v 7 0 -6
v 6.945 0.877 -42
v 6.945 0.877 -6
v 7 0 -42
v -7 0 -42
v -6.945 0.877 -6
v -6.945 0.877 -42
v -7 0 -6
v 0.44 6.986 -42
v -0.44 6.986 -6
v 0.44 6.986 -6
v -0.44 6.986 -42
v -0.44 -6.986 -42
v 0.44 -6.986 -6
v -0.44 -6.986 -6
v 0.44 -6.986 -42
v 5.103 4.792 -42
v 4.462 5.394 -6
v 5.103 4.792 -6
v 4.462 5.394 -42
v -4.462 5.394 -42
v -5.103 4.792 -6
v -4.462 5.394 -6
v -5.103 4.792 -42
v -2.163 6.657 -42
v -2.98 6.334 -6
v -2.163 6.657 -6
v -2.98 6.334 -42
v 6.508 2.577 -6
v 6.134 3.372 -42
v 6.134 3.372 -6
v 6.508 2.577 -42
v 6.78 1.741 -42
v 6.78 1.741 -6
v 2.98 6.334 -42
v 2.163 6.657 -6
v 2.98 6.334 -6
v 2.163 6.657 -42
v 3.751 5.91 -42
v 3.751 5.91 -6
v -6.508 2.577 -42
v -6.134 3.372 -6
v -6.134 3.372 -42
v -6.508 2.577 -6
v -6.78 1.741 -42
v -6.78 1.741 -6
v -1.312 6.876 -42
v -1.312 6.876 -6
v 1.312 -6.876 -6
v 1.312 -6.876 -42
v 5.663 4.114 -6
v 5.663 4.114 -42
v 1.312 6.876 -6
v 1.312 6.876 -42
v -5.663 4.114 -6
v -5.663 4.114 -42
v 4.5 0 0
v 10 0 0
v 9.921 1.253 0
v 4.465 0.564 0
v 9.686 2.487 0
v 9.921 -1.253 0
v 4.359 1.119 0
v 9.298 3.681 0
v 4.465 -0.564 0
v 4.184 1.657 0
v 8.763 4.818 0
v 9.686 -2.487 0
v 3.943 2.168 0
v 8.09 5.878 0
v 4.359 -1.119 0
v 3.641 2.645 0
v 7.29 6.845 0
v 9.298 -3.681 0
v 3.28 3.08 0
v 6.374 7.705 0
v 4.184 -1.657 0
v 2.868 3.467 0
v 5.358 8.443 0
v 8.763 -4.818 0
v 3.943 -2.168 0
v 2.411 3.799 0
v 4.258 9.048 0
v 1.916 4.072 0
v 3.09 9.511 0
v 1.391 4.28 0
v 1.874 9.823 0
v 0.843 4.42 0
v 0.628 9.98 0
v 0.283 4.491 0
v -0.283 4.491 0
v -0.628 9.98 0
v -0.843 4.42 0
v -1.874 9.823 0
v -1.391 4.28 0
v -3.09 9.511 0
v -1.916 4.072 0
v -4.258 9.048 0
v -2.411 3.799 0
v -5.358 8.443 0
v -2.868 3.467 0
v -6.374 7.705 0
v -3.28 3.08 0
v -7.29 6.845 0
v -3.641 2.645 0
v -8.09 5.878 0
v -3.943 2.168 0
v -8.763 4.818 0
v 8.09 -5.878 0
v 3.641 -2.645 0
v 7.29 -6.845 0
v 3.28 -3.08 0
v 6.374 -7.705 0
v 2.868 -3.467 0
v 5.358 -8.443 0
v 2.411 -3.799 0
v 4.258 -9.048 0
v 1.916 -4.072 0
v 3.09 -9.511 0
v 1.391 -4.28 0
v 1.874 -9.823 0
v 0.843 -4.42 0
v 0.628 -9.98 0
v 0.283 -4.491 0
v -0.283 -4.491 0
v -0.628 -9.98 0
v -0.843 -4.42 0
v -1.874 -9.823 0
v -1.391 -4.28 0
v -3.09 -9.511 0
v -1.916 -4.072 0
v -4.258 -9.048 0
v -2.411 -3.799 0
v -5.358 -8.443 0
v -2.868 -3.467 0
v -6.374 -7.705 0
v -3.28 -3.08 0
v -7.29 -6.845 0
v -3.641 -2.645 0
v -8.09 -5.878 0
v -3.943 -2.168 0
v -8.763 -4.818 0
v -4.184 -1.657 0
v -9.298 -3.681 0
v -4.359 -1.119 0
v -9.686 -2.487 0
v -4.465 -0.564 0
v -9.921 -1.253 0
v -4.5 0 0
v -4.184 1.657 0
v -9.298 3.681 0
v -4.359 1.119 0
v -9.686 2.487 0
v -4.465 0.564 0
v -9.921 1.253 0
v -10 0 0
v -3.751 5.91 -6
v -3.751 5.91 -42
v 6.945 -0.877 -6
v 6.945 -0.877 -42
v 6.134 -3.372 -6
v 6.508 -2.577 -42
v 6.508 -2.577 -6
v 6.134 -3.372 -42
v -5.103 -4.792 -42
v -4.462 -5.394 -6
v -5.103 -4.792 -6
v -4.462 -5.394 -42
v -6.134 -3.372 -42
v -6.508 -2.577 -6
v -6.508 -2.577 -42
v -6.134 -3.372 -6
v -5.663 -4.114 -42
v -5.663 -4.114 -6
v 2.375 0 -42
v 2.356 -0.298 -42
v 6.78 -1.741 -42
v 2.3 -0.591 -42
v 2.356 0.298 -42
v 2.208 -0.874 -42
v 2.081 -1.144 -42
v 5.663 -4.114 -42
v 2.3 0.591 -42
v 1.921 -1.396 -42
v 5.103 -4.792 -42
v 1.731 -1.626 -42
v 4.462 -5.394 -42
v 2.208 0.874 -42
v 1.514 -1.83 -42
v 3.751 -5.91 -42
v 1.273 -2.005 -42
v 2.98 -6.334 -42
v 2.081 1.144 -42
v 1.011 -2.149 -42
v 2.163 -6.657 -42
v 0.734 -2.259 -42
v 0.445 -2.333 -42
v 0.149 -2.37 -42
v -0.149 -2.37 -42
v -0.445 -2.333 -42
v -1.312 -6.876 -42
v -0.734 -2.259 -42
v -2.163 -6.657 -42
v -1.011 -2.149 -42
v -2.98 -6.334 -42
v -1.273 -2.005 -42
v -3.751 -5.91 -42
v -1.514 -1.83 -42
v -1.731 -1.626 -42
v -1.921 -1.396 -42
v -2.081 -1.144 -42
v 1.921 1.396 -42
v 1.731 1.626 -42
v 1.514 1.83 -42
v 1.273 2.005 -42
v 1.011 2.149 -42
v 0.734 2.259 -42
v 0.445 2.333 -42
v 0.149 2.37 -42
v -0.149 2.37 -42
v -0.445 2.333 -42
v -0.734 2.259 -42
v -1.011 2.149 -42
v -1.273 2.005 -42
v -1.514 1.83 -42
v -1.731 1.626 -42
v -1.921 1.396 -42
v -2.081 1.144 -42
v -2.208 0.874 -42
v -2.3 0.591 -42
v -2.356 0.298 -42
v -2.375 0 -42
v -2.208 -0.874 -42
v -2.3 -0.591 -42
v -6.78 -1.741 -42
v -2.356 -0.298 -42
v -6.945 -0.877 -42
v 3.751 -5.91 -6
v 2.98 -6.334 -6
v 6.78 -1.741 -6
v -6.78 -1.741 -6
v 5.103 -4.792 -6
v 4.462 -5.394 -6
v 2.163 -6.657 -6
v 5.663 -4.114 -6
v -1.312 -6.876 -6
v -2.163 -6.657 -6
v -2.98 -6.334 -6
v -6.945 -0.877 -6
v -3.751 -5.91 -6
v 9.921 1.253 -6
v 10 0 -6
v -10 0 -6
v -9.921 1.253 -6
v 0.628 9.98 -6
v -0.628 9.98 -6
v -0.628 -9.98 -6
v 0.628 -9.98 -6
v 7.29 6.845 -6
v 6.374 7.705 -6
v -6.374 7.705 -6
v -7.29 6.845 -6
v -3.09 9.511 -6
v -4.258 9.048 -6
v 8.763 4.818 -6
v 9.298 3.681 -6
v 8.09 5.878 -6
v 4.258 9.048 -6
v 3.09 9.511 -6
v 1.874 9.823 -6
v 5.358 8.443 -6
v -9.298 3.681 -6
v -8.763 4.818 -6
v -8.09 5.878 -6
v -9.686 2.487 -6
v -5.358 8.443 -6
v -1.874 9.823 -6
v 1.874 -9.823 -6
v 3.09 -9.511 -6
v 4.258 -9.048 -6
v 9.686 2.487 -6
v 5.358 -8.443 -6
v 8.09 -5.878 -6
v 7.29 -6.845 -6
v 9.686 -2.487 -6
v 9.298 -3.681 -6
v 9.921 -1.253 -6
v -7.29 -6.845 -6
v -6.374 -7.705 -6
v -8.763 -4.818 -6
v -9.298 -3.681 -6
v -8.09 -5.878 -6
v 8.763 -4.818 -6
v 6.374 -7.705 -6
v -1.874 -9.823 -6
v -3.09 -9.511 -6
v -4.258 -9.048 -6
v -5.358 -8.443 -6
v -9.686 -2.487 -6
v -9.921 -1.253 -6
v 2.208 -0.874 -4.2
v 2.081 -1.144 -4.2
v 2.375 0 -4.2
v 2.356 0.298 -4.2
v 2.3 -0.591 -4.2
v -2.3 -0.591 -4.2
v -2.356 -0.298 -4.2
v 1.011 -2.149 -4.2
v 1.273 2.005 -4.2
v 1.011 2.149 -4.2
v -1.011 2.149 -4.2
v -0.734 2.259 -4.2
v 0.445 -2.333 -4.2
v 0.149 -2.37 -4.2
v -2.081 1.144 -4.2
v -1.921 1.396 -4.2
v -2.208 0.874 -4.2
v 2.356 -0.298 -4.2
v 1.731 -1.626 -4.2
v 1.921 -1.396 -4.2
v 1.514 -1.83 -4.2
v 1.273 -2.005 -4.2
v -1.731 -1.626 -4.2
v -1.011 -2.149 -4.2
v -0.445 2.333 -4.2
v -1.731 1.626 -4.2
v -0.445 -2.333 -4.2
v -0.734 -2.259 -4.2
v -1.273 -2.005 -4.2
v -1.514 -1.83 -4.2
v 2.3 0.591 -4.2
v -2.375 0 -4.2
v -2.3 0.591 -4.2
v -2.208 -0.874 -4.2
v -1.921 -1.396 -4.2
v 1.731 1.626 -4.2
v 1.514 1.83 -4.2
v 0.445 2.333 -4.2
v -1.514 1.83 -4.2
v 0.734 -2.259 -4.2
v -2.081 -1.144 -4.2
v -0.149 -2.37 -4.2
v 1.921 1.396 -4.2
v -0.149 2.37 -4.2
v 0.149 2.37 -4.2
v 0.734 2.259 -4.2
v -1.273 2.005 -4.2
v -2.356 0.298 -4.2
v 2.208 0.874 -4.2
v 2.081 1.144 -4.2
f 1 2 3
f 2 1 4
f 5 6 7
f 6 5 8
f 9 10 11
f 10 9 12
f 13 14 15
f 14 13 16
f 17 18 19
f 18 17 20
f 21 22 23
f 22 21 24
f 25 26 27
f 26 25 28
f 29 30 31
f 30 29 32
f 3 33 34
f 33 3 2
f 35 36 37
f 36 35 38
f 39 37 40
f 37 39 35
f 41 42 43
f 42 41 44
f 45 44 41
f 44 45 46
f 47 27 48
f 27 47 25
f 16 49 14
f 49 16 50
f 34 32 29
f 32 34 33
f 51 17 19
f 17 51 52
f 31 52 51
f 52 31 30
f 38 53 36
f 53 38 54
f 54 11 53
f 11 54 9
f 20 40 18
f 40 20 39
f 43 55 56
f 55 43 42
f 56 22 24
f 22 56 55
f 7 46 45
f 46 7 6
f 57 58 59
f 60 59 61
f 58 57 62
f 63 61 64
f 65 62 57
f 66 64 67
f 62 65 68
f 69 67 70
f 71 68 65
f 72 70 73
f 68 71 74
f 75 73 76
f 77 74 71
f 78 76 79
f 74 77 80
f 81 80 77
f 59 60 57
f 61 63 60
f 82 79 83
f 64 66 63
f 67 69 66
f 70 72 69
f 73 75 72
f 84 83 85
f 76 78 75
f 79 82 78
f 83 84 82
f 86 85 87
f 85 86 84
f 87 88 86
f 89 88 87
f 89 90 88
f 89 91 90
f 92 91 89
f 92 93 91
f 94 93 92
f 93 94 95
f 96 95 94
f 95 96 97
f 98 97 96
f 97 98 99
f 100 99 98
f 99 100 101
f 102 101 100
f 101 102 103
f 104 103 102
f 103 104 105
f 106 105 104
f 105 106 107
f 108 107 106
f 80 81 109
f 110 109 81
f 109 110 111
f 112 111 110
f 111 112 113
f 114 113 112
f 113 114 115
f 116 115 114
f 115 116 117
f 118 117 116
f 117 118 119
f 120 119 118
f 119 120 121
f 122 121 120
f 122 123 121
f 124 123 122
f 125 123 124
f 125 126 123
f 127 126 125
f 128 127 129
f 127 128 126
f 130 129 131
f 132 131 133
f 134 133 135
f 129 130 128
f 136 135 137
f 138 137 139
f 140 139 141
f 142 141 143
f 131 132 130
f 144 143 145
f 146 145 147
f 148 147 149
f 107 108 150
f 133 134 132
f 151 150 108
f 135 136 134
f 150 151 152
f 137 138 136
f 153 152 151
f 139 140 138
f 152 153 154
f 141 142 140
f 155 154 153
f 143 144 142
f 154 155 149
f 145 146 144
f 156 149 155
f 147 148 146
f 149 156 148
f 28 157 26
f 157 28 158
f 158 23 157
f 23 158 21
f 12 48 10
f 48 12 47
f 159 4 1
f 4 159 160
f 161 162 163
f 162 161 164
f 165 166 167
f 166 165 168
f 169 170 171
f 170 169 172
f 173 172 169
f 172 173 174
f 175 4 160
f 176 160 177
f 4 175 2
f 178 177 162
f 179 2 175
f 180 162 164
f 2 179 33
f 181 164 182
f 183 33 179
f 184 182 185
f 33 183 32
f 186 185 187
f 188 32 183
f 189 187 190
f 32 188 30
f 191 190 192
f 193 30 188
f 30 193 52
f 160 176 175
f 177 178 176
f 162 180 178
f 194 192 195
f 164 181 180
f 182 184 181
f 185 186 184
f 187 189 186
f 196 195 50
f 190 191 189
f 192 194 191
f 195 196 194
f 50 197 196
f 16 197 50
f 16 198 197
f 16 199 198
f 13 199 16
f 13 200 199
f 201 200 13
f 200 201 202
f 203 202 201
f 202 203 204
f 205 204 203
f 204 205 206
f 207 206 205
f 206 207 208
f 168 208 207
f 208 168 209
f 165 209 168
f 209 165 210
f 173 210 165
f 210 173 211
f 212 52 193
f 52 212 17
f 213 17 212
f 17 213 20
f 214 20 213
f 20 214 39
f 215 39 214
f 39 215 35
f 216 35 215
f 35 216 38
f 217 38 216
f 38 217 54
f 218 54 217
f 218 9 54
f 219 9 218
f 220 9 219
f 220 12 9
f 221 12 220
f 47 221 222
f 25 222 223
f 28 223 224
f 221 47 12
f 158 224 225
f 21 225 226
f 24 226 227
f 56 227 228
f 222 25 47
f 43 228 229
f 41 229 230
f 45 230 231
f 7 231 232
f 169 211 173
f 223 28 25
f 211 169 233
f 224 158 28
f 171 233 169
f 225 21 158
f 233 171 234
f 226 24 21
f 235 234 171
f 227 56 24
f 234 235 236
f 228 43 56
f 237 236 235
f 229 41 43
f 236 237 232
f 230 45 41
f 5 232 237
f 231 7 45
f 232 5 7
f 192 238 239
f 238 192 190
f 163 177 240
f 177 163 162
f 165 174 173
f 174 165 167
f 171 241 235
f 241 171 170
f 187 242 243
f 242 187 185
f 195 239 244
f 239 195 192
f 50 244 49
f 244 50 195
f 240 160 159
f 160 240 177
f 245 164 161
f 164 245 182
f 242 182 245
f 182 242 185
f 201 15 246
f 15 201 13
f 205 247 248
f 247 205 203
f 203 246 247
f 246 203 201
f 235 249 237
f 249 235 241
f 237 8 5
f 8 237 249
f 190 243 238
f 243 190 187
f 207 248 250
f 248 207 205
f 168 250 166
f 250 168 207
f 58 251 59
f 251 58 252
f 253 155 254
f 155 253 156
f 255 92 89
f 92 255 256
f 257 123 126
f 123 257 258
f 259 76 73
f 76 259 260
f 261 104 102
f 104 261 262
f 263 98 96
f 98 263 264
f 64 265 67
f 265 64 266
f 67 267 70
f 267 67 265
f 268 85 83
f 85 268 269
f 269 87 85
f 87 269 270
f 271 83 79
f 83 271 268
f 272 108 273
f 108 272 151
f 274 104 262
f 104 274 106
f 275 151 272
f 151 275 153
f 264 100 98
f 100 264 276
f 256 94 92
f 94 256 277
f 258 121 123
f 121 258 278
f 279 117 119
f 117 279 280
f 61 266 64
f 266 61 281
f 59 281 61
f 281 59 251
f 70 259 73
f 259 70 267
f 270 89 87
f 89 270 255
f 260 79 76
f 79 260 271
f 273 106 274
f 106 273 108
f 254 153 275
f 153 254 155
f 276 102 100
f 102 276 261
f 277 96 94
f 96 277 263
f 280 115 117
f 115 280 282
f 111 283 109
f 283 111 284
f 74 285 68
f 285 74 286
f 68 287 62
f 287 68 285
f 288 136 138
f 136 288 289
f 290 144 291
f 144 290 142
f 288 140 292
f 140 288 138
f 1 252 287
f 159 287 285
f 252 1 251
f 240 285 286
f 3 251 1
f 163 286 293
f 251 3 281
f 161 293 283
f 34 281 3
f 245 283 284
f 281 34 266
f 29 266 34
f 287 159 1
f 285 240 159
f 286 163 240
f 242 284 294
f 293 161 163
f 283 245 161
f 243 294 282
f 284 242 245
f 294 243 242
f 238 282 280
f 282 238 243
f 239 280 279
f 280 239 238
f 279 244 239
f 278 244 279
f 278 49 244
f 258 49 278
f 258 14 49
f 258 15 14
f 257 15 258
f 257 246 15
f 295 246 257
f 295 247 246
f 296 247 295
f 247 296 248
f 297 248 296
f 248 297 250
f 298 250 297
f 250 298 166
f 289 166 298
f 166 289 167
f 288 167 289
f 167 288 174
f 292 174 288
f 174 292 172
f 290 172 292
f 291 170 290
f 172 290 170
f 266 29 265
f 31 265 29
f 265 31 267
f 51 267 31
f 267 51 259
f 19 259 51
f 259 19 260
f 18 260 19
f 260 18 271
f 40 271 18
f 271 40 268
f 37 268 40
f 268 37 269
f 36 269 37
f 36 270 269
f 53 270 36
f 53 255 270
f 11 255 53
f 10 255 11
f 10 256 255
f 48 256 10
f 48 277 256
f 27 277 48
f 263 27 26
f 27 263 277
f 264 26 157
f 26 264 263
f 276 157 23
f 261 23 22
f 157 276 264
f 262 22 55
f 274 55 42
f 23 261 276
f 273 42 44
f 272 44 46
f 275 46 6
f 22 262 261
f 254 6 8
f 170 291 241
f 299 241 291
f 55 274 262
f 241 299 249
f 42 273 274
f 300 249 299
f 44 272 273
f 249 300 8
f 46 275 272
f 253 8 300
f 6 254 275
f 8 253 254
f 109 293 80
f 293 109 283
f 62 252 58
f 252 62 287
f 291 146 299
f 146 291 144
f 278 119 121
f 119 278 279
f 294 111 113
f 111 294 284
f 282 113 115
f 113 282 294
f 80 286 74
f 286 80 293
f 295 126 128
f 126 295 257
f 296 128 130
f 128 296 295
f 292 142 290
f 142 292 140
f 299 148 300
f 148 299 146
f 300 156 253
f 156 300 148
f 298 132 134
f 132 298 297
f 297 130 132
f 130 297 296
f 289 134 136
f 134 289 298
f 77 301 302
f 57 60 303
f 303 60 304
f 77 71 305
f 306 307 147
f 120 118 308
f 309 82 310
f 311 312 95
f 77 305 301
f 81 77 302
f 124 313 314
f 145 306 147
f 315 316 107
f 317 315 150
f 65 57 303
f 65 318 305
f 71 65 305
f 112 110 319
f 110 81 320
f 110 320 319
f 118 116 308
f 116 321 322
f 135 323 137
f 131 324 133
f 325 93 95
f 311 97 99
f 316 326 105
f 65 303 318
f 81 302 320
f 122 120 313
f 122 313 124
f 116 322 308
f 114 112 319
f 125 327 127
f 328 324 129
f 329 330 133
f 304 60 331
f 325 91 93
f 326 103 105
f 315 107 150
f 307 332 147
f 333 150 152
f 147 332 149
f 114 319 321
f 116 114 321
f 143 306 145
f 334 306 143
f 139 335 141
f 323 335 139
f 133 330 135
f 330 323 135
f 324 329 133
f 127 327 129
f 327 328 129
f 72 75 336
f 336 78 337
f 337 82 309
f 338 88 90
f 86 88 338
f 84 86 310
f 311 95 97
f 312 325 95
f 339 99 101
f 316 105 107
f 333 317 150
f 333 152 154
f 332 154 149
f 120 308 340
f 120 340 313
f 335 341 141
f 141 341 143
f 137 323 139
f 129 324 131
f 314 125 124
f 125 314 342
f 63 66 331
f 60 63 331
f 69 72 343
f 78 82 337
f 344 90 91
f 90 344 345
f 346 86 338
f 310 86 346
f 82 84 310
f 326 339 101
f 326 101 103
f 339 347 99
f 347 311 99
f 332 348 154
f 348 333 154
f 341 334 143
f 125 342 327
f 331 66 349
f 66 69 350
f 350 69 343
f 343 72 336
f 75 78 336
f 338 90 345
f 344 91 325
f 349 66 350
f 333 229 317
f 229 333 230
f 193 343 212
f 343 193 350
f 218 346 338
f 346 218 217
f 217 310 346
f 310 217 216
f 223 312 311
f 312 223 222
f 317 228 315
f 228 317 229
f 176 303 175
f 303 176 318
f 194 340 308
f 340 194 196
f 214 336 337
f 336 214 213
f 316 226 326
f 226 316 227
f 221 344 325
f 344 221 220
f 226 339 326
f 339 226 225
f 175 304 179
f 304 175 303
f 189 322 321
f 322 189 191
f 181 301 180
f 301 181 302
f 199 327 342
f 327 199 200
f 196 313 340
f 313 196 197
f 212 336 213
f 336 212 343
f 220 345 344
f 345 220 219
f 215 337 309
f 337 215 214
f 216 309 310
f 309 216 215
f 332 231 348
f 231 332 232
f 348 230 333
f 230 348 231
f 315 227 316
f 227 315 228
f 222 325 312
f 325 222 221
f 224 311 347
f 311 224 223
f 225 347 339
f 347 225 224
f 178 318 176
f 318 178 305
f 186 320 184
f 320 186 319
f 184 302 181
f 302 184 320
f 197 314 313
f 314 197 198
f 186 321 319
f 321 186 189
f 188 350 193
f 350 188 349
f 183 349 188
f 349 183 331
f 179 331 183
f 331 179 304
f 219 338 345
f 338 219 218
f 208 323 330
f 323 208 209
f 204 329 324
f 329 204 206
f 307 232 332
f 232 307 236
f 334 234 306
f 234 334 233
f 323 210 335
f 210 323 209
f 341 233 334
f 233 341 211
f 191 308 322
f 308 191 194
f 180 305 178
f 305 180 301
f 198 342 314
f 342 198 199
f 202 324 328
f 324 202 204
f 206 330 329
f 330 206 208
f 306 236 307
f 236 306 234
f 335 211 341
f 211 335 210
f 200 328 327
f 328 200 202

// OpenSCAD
$fn = 50;


difference() {
	union() {
		translate(v = [0, 0, -42.0000000000]) {
			cylinder(h = 42, r = 7.0000000000);
		}
		translate(v = [0, 0, -6.0000000000]) {
			cylinder(h = 6, r = 10.0000000000);
		}
	}
	union() {
		translate(v = [0, 0, 0]) {
			rotate(a = [0, 0, 0]) {
				difference() {
					union() {
						#translate(v = [0, 0, -42.0000000000]) {
							cylinder(h = 42, r = 2.2500000000);
						}
						#translate(v = [0, 0, -4.2000000000]) {
							cylinder(h = 4.2000000000, r1 = 2.3750000000, r2 = 4.5000000000);
						}
						#translate(v = [0, 0, -42.0000000000]) {
							cylinder(h = 42, r = 2.3750000000);
						}
						#translate(v = [0, 0, -42.0000000000]) {
							cylinder(h = 42, r = 2.2500000000);
						}
					}
					union();
				}
			}
		}
	}
}
